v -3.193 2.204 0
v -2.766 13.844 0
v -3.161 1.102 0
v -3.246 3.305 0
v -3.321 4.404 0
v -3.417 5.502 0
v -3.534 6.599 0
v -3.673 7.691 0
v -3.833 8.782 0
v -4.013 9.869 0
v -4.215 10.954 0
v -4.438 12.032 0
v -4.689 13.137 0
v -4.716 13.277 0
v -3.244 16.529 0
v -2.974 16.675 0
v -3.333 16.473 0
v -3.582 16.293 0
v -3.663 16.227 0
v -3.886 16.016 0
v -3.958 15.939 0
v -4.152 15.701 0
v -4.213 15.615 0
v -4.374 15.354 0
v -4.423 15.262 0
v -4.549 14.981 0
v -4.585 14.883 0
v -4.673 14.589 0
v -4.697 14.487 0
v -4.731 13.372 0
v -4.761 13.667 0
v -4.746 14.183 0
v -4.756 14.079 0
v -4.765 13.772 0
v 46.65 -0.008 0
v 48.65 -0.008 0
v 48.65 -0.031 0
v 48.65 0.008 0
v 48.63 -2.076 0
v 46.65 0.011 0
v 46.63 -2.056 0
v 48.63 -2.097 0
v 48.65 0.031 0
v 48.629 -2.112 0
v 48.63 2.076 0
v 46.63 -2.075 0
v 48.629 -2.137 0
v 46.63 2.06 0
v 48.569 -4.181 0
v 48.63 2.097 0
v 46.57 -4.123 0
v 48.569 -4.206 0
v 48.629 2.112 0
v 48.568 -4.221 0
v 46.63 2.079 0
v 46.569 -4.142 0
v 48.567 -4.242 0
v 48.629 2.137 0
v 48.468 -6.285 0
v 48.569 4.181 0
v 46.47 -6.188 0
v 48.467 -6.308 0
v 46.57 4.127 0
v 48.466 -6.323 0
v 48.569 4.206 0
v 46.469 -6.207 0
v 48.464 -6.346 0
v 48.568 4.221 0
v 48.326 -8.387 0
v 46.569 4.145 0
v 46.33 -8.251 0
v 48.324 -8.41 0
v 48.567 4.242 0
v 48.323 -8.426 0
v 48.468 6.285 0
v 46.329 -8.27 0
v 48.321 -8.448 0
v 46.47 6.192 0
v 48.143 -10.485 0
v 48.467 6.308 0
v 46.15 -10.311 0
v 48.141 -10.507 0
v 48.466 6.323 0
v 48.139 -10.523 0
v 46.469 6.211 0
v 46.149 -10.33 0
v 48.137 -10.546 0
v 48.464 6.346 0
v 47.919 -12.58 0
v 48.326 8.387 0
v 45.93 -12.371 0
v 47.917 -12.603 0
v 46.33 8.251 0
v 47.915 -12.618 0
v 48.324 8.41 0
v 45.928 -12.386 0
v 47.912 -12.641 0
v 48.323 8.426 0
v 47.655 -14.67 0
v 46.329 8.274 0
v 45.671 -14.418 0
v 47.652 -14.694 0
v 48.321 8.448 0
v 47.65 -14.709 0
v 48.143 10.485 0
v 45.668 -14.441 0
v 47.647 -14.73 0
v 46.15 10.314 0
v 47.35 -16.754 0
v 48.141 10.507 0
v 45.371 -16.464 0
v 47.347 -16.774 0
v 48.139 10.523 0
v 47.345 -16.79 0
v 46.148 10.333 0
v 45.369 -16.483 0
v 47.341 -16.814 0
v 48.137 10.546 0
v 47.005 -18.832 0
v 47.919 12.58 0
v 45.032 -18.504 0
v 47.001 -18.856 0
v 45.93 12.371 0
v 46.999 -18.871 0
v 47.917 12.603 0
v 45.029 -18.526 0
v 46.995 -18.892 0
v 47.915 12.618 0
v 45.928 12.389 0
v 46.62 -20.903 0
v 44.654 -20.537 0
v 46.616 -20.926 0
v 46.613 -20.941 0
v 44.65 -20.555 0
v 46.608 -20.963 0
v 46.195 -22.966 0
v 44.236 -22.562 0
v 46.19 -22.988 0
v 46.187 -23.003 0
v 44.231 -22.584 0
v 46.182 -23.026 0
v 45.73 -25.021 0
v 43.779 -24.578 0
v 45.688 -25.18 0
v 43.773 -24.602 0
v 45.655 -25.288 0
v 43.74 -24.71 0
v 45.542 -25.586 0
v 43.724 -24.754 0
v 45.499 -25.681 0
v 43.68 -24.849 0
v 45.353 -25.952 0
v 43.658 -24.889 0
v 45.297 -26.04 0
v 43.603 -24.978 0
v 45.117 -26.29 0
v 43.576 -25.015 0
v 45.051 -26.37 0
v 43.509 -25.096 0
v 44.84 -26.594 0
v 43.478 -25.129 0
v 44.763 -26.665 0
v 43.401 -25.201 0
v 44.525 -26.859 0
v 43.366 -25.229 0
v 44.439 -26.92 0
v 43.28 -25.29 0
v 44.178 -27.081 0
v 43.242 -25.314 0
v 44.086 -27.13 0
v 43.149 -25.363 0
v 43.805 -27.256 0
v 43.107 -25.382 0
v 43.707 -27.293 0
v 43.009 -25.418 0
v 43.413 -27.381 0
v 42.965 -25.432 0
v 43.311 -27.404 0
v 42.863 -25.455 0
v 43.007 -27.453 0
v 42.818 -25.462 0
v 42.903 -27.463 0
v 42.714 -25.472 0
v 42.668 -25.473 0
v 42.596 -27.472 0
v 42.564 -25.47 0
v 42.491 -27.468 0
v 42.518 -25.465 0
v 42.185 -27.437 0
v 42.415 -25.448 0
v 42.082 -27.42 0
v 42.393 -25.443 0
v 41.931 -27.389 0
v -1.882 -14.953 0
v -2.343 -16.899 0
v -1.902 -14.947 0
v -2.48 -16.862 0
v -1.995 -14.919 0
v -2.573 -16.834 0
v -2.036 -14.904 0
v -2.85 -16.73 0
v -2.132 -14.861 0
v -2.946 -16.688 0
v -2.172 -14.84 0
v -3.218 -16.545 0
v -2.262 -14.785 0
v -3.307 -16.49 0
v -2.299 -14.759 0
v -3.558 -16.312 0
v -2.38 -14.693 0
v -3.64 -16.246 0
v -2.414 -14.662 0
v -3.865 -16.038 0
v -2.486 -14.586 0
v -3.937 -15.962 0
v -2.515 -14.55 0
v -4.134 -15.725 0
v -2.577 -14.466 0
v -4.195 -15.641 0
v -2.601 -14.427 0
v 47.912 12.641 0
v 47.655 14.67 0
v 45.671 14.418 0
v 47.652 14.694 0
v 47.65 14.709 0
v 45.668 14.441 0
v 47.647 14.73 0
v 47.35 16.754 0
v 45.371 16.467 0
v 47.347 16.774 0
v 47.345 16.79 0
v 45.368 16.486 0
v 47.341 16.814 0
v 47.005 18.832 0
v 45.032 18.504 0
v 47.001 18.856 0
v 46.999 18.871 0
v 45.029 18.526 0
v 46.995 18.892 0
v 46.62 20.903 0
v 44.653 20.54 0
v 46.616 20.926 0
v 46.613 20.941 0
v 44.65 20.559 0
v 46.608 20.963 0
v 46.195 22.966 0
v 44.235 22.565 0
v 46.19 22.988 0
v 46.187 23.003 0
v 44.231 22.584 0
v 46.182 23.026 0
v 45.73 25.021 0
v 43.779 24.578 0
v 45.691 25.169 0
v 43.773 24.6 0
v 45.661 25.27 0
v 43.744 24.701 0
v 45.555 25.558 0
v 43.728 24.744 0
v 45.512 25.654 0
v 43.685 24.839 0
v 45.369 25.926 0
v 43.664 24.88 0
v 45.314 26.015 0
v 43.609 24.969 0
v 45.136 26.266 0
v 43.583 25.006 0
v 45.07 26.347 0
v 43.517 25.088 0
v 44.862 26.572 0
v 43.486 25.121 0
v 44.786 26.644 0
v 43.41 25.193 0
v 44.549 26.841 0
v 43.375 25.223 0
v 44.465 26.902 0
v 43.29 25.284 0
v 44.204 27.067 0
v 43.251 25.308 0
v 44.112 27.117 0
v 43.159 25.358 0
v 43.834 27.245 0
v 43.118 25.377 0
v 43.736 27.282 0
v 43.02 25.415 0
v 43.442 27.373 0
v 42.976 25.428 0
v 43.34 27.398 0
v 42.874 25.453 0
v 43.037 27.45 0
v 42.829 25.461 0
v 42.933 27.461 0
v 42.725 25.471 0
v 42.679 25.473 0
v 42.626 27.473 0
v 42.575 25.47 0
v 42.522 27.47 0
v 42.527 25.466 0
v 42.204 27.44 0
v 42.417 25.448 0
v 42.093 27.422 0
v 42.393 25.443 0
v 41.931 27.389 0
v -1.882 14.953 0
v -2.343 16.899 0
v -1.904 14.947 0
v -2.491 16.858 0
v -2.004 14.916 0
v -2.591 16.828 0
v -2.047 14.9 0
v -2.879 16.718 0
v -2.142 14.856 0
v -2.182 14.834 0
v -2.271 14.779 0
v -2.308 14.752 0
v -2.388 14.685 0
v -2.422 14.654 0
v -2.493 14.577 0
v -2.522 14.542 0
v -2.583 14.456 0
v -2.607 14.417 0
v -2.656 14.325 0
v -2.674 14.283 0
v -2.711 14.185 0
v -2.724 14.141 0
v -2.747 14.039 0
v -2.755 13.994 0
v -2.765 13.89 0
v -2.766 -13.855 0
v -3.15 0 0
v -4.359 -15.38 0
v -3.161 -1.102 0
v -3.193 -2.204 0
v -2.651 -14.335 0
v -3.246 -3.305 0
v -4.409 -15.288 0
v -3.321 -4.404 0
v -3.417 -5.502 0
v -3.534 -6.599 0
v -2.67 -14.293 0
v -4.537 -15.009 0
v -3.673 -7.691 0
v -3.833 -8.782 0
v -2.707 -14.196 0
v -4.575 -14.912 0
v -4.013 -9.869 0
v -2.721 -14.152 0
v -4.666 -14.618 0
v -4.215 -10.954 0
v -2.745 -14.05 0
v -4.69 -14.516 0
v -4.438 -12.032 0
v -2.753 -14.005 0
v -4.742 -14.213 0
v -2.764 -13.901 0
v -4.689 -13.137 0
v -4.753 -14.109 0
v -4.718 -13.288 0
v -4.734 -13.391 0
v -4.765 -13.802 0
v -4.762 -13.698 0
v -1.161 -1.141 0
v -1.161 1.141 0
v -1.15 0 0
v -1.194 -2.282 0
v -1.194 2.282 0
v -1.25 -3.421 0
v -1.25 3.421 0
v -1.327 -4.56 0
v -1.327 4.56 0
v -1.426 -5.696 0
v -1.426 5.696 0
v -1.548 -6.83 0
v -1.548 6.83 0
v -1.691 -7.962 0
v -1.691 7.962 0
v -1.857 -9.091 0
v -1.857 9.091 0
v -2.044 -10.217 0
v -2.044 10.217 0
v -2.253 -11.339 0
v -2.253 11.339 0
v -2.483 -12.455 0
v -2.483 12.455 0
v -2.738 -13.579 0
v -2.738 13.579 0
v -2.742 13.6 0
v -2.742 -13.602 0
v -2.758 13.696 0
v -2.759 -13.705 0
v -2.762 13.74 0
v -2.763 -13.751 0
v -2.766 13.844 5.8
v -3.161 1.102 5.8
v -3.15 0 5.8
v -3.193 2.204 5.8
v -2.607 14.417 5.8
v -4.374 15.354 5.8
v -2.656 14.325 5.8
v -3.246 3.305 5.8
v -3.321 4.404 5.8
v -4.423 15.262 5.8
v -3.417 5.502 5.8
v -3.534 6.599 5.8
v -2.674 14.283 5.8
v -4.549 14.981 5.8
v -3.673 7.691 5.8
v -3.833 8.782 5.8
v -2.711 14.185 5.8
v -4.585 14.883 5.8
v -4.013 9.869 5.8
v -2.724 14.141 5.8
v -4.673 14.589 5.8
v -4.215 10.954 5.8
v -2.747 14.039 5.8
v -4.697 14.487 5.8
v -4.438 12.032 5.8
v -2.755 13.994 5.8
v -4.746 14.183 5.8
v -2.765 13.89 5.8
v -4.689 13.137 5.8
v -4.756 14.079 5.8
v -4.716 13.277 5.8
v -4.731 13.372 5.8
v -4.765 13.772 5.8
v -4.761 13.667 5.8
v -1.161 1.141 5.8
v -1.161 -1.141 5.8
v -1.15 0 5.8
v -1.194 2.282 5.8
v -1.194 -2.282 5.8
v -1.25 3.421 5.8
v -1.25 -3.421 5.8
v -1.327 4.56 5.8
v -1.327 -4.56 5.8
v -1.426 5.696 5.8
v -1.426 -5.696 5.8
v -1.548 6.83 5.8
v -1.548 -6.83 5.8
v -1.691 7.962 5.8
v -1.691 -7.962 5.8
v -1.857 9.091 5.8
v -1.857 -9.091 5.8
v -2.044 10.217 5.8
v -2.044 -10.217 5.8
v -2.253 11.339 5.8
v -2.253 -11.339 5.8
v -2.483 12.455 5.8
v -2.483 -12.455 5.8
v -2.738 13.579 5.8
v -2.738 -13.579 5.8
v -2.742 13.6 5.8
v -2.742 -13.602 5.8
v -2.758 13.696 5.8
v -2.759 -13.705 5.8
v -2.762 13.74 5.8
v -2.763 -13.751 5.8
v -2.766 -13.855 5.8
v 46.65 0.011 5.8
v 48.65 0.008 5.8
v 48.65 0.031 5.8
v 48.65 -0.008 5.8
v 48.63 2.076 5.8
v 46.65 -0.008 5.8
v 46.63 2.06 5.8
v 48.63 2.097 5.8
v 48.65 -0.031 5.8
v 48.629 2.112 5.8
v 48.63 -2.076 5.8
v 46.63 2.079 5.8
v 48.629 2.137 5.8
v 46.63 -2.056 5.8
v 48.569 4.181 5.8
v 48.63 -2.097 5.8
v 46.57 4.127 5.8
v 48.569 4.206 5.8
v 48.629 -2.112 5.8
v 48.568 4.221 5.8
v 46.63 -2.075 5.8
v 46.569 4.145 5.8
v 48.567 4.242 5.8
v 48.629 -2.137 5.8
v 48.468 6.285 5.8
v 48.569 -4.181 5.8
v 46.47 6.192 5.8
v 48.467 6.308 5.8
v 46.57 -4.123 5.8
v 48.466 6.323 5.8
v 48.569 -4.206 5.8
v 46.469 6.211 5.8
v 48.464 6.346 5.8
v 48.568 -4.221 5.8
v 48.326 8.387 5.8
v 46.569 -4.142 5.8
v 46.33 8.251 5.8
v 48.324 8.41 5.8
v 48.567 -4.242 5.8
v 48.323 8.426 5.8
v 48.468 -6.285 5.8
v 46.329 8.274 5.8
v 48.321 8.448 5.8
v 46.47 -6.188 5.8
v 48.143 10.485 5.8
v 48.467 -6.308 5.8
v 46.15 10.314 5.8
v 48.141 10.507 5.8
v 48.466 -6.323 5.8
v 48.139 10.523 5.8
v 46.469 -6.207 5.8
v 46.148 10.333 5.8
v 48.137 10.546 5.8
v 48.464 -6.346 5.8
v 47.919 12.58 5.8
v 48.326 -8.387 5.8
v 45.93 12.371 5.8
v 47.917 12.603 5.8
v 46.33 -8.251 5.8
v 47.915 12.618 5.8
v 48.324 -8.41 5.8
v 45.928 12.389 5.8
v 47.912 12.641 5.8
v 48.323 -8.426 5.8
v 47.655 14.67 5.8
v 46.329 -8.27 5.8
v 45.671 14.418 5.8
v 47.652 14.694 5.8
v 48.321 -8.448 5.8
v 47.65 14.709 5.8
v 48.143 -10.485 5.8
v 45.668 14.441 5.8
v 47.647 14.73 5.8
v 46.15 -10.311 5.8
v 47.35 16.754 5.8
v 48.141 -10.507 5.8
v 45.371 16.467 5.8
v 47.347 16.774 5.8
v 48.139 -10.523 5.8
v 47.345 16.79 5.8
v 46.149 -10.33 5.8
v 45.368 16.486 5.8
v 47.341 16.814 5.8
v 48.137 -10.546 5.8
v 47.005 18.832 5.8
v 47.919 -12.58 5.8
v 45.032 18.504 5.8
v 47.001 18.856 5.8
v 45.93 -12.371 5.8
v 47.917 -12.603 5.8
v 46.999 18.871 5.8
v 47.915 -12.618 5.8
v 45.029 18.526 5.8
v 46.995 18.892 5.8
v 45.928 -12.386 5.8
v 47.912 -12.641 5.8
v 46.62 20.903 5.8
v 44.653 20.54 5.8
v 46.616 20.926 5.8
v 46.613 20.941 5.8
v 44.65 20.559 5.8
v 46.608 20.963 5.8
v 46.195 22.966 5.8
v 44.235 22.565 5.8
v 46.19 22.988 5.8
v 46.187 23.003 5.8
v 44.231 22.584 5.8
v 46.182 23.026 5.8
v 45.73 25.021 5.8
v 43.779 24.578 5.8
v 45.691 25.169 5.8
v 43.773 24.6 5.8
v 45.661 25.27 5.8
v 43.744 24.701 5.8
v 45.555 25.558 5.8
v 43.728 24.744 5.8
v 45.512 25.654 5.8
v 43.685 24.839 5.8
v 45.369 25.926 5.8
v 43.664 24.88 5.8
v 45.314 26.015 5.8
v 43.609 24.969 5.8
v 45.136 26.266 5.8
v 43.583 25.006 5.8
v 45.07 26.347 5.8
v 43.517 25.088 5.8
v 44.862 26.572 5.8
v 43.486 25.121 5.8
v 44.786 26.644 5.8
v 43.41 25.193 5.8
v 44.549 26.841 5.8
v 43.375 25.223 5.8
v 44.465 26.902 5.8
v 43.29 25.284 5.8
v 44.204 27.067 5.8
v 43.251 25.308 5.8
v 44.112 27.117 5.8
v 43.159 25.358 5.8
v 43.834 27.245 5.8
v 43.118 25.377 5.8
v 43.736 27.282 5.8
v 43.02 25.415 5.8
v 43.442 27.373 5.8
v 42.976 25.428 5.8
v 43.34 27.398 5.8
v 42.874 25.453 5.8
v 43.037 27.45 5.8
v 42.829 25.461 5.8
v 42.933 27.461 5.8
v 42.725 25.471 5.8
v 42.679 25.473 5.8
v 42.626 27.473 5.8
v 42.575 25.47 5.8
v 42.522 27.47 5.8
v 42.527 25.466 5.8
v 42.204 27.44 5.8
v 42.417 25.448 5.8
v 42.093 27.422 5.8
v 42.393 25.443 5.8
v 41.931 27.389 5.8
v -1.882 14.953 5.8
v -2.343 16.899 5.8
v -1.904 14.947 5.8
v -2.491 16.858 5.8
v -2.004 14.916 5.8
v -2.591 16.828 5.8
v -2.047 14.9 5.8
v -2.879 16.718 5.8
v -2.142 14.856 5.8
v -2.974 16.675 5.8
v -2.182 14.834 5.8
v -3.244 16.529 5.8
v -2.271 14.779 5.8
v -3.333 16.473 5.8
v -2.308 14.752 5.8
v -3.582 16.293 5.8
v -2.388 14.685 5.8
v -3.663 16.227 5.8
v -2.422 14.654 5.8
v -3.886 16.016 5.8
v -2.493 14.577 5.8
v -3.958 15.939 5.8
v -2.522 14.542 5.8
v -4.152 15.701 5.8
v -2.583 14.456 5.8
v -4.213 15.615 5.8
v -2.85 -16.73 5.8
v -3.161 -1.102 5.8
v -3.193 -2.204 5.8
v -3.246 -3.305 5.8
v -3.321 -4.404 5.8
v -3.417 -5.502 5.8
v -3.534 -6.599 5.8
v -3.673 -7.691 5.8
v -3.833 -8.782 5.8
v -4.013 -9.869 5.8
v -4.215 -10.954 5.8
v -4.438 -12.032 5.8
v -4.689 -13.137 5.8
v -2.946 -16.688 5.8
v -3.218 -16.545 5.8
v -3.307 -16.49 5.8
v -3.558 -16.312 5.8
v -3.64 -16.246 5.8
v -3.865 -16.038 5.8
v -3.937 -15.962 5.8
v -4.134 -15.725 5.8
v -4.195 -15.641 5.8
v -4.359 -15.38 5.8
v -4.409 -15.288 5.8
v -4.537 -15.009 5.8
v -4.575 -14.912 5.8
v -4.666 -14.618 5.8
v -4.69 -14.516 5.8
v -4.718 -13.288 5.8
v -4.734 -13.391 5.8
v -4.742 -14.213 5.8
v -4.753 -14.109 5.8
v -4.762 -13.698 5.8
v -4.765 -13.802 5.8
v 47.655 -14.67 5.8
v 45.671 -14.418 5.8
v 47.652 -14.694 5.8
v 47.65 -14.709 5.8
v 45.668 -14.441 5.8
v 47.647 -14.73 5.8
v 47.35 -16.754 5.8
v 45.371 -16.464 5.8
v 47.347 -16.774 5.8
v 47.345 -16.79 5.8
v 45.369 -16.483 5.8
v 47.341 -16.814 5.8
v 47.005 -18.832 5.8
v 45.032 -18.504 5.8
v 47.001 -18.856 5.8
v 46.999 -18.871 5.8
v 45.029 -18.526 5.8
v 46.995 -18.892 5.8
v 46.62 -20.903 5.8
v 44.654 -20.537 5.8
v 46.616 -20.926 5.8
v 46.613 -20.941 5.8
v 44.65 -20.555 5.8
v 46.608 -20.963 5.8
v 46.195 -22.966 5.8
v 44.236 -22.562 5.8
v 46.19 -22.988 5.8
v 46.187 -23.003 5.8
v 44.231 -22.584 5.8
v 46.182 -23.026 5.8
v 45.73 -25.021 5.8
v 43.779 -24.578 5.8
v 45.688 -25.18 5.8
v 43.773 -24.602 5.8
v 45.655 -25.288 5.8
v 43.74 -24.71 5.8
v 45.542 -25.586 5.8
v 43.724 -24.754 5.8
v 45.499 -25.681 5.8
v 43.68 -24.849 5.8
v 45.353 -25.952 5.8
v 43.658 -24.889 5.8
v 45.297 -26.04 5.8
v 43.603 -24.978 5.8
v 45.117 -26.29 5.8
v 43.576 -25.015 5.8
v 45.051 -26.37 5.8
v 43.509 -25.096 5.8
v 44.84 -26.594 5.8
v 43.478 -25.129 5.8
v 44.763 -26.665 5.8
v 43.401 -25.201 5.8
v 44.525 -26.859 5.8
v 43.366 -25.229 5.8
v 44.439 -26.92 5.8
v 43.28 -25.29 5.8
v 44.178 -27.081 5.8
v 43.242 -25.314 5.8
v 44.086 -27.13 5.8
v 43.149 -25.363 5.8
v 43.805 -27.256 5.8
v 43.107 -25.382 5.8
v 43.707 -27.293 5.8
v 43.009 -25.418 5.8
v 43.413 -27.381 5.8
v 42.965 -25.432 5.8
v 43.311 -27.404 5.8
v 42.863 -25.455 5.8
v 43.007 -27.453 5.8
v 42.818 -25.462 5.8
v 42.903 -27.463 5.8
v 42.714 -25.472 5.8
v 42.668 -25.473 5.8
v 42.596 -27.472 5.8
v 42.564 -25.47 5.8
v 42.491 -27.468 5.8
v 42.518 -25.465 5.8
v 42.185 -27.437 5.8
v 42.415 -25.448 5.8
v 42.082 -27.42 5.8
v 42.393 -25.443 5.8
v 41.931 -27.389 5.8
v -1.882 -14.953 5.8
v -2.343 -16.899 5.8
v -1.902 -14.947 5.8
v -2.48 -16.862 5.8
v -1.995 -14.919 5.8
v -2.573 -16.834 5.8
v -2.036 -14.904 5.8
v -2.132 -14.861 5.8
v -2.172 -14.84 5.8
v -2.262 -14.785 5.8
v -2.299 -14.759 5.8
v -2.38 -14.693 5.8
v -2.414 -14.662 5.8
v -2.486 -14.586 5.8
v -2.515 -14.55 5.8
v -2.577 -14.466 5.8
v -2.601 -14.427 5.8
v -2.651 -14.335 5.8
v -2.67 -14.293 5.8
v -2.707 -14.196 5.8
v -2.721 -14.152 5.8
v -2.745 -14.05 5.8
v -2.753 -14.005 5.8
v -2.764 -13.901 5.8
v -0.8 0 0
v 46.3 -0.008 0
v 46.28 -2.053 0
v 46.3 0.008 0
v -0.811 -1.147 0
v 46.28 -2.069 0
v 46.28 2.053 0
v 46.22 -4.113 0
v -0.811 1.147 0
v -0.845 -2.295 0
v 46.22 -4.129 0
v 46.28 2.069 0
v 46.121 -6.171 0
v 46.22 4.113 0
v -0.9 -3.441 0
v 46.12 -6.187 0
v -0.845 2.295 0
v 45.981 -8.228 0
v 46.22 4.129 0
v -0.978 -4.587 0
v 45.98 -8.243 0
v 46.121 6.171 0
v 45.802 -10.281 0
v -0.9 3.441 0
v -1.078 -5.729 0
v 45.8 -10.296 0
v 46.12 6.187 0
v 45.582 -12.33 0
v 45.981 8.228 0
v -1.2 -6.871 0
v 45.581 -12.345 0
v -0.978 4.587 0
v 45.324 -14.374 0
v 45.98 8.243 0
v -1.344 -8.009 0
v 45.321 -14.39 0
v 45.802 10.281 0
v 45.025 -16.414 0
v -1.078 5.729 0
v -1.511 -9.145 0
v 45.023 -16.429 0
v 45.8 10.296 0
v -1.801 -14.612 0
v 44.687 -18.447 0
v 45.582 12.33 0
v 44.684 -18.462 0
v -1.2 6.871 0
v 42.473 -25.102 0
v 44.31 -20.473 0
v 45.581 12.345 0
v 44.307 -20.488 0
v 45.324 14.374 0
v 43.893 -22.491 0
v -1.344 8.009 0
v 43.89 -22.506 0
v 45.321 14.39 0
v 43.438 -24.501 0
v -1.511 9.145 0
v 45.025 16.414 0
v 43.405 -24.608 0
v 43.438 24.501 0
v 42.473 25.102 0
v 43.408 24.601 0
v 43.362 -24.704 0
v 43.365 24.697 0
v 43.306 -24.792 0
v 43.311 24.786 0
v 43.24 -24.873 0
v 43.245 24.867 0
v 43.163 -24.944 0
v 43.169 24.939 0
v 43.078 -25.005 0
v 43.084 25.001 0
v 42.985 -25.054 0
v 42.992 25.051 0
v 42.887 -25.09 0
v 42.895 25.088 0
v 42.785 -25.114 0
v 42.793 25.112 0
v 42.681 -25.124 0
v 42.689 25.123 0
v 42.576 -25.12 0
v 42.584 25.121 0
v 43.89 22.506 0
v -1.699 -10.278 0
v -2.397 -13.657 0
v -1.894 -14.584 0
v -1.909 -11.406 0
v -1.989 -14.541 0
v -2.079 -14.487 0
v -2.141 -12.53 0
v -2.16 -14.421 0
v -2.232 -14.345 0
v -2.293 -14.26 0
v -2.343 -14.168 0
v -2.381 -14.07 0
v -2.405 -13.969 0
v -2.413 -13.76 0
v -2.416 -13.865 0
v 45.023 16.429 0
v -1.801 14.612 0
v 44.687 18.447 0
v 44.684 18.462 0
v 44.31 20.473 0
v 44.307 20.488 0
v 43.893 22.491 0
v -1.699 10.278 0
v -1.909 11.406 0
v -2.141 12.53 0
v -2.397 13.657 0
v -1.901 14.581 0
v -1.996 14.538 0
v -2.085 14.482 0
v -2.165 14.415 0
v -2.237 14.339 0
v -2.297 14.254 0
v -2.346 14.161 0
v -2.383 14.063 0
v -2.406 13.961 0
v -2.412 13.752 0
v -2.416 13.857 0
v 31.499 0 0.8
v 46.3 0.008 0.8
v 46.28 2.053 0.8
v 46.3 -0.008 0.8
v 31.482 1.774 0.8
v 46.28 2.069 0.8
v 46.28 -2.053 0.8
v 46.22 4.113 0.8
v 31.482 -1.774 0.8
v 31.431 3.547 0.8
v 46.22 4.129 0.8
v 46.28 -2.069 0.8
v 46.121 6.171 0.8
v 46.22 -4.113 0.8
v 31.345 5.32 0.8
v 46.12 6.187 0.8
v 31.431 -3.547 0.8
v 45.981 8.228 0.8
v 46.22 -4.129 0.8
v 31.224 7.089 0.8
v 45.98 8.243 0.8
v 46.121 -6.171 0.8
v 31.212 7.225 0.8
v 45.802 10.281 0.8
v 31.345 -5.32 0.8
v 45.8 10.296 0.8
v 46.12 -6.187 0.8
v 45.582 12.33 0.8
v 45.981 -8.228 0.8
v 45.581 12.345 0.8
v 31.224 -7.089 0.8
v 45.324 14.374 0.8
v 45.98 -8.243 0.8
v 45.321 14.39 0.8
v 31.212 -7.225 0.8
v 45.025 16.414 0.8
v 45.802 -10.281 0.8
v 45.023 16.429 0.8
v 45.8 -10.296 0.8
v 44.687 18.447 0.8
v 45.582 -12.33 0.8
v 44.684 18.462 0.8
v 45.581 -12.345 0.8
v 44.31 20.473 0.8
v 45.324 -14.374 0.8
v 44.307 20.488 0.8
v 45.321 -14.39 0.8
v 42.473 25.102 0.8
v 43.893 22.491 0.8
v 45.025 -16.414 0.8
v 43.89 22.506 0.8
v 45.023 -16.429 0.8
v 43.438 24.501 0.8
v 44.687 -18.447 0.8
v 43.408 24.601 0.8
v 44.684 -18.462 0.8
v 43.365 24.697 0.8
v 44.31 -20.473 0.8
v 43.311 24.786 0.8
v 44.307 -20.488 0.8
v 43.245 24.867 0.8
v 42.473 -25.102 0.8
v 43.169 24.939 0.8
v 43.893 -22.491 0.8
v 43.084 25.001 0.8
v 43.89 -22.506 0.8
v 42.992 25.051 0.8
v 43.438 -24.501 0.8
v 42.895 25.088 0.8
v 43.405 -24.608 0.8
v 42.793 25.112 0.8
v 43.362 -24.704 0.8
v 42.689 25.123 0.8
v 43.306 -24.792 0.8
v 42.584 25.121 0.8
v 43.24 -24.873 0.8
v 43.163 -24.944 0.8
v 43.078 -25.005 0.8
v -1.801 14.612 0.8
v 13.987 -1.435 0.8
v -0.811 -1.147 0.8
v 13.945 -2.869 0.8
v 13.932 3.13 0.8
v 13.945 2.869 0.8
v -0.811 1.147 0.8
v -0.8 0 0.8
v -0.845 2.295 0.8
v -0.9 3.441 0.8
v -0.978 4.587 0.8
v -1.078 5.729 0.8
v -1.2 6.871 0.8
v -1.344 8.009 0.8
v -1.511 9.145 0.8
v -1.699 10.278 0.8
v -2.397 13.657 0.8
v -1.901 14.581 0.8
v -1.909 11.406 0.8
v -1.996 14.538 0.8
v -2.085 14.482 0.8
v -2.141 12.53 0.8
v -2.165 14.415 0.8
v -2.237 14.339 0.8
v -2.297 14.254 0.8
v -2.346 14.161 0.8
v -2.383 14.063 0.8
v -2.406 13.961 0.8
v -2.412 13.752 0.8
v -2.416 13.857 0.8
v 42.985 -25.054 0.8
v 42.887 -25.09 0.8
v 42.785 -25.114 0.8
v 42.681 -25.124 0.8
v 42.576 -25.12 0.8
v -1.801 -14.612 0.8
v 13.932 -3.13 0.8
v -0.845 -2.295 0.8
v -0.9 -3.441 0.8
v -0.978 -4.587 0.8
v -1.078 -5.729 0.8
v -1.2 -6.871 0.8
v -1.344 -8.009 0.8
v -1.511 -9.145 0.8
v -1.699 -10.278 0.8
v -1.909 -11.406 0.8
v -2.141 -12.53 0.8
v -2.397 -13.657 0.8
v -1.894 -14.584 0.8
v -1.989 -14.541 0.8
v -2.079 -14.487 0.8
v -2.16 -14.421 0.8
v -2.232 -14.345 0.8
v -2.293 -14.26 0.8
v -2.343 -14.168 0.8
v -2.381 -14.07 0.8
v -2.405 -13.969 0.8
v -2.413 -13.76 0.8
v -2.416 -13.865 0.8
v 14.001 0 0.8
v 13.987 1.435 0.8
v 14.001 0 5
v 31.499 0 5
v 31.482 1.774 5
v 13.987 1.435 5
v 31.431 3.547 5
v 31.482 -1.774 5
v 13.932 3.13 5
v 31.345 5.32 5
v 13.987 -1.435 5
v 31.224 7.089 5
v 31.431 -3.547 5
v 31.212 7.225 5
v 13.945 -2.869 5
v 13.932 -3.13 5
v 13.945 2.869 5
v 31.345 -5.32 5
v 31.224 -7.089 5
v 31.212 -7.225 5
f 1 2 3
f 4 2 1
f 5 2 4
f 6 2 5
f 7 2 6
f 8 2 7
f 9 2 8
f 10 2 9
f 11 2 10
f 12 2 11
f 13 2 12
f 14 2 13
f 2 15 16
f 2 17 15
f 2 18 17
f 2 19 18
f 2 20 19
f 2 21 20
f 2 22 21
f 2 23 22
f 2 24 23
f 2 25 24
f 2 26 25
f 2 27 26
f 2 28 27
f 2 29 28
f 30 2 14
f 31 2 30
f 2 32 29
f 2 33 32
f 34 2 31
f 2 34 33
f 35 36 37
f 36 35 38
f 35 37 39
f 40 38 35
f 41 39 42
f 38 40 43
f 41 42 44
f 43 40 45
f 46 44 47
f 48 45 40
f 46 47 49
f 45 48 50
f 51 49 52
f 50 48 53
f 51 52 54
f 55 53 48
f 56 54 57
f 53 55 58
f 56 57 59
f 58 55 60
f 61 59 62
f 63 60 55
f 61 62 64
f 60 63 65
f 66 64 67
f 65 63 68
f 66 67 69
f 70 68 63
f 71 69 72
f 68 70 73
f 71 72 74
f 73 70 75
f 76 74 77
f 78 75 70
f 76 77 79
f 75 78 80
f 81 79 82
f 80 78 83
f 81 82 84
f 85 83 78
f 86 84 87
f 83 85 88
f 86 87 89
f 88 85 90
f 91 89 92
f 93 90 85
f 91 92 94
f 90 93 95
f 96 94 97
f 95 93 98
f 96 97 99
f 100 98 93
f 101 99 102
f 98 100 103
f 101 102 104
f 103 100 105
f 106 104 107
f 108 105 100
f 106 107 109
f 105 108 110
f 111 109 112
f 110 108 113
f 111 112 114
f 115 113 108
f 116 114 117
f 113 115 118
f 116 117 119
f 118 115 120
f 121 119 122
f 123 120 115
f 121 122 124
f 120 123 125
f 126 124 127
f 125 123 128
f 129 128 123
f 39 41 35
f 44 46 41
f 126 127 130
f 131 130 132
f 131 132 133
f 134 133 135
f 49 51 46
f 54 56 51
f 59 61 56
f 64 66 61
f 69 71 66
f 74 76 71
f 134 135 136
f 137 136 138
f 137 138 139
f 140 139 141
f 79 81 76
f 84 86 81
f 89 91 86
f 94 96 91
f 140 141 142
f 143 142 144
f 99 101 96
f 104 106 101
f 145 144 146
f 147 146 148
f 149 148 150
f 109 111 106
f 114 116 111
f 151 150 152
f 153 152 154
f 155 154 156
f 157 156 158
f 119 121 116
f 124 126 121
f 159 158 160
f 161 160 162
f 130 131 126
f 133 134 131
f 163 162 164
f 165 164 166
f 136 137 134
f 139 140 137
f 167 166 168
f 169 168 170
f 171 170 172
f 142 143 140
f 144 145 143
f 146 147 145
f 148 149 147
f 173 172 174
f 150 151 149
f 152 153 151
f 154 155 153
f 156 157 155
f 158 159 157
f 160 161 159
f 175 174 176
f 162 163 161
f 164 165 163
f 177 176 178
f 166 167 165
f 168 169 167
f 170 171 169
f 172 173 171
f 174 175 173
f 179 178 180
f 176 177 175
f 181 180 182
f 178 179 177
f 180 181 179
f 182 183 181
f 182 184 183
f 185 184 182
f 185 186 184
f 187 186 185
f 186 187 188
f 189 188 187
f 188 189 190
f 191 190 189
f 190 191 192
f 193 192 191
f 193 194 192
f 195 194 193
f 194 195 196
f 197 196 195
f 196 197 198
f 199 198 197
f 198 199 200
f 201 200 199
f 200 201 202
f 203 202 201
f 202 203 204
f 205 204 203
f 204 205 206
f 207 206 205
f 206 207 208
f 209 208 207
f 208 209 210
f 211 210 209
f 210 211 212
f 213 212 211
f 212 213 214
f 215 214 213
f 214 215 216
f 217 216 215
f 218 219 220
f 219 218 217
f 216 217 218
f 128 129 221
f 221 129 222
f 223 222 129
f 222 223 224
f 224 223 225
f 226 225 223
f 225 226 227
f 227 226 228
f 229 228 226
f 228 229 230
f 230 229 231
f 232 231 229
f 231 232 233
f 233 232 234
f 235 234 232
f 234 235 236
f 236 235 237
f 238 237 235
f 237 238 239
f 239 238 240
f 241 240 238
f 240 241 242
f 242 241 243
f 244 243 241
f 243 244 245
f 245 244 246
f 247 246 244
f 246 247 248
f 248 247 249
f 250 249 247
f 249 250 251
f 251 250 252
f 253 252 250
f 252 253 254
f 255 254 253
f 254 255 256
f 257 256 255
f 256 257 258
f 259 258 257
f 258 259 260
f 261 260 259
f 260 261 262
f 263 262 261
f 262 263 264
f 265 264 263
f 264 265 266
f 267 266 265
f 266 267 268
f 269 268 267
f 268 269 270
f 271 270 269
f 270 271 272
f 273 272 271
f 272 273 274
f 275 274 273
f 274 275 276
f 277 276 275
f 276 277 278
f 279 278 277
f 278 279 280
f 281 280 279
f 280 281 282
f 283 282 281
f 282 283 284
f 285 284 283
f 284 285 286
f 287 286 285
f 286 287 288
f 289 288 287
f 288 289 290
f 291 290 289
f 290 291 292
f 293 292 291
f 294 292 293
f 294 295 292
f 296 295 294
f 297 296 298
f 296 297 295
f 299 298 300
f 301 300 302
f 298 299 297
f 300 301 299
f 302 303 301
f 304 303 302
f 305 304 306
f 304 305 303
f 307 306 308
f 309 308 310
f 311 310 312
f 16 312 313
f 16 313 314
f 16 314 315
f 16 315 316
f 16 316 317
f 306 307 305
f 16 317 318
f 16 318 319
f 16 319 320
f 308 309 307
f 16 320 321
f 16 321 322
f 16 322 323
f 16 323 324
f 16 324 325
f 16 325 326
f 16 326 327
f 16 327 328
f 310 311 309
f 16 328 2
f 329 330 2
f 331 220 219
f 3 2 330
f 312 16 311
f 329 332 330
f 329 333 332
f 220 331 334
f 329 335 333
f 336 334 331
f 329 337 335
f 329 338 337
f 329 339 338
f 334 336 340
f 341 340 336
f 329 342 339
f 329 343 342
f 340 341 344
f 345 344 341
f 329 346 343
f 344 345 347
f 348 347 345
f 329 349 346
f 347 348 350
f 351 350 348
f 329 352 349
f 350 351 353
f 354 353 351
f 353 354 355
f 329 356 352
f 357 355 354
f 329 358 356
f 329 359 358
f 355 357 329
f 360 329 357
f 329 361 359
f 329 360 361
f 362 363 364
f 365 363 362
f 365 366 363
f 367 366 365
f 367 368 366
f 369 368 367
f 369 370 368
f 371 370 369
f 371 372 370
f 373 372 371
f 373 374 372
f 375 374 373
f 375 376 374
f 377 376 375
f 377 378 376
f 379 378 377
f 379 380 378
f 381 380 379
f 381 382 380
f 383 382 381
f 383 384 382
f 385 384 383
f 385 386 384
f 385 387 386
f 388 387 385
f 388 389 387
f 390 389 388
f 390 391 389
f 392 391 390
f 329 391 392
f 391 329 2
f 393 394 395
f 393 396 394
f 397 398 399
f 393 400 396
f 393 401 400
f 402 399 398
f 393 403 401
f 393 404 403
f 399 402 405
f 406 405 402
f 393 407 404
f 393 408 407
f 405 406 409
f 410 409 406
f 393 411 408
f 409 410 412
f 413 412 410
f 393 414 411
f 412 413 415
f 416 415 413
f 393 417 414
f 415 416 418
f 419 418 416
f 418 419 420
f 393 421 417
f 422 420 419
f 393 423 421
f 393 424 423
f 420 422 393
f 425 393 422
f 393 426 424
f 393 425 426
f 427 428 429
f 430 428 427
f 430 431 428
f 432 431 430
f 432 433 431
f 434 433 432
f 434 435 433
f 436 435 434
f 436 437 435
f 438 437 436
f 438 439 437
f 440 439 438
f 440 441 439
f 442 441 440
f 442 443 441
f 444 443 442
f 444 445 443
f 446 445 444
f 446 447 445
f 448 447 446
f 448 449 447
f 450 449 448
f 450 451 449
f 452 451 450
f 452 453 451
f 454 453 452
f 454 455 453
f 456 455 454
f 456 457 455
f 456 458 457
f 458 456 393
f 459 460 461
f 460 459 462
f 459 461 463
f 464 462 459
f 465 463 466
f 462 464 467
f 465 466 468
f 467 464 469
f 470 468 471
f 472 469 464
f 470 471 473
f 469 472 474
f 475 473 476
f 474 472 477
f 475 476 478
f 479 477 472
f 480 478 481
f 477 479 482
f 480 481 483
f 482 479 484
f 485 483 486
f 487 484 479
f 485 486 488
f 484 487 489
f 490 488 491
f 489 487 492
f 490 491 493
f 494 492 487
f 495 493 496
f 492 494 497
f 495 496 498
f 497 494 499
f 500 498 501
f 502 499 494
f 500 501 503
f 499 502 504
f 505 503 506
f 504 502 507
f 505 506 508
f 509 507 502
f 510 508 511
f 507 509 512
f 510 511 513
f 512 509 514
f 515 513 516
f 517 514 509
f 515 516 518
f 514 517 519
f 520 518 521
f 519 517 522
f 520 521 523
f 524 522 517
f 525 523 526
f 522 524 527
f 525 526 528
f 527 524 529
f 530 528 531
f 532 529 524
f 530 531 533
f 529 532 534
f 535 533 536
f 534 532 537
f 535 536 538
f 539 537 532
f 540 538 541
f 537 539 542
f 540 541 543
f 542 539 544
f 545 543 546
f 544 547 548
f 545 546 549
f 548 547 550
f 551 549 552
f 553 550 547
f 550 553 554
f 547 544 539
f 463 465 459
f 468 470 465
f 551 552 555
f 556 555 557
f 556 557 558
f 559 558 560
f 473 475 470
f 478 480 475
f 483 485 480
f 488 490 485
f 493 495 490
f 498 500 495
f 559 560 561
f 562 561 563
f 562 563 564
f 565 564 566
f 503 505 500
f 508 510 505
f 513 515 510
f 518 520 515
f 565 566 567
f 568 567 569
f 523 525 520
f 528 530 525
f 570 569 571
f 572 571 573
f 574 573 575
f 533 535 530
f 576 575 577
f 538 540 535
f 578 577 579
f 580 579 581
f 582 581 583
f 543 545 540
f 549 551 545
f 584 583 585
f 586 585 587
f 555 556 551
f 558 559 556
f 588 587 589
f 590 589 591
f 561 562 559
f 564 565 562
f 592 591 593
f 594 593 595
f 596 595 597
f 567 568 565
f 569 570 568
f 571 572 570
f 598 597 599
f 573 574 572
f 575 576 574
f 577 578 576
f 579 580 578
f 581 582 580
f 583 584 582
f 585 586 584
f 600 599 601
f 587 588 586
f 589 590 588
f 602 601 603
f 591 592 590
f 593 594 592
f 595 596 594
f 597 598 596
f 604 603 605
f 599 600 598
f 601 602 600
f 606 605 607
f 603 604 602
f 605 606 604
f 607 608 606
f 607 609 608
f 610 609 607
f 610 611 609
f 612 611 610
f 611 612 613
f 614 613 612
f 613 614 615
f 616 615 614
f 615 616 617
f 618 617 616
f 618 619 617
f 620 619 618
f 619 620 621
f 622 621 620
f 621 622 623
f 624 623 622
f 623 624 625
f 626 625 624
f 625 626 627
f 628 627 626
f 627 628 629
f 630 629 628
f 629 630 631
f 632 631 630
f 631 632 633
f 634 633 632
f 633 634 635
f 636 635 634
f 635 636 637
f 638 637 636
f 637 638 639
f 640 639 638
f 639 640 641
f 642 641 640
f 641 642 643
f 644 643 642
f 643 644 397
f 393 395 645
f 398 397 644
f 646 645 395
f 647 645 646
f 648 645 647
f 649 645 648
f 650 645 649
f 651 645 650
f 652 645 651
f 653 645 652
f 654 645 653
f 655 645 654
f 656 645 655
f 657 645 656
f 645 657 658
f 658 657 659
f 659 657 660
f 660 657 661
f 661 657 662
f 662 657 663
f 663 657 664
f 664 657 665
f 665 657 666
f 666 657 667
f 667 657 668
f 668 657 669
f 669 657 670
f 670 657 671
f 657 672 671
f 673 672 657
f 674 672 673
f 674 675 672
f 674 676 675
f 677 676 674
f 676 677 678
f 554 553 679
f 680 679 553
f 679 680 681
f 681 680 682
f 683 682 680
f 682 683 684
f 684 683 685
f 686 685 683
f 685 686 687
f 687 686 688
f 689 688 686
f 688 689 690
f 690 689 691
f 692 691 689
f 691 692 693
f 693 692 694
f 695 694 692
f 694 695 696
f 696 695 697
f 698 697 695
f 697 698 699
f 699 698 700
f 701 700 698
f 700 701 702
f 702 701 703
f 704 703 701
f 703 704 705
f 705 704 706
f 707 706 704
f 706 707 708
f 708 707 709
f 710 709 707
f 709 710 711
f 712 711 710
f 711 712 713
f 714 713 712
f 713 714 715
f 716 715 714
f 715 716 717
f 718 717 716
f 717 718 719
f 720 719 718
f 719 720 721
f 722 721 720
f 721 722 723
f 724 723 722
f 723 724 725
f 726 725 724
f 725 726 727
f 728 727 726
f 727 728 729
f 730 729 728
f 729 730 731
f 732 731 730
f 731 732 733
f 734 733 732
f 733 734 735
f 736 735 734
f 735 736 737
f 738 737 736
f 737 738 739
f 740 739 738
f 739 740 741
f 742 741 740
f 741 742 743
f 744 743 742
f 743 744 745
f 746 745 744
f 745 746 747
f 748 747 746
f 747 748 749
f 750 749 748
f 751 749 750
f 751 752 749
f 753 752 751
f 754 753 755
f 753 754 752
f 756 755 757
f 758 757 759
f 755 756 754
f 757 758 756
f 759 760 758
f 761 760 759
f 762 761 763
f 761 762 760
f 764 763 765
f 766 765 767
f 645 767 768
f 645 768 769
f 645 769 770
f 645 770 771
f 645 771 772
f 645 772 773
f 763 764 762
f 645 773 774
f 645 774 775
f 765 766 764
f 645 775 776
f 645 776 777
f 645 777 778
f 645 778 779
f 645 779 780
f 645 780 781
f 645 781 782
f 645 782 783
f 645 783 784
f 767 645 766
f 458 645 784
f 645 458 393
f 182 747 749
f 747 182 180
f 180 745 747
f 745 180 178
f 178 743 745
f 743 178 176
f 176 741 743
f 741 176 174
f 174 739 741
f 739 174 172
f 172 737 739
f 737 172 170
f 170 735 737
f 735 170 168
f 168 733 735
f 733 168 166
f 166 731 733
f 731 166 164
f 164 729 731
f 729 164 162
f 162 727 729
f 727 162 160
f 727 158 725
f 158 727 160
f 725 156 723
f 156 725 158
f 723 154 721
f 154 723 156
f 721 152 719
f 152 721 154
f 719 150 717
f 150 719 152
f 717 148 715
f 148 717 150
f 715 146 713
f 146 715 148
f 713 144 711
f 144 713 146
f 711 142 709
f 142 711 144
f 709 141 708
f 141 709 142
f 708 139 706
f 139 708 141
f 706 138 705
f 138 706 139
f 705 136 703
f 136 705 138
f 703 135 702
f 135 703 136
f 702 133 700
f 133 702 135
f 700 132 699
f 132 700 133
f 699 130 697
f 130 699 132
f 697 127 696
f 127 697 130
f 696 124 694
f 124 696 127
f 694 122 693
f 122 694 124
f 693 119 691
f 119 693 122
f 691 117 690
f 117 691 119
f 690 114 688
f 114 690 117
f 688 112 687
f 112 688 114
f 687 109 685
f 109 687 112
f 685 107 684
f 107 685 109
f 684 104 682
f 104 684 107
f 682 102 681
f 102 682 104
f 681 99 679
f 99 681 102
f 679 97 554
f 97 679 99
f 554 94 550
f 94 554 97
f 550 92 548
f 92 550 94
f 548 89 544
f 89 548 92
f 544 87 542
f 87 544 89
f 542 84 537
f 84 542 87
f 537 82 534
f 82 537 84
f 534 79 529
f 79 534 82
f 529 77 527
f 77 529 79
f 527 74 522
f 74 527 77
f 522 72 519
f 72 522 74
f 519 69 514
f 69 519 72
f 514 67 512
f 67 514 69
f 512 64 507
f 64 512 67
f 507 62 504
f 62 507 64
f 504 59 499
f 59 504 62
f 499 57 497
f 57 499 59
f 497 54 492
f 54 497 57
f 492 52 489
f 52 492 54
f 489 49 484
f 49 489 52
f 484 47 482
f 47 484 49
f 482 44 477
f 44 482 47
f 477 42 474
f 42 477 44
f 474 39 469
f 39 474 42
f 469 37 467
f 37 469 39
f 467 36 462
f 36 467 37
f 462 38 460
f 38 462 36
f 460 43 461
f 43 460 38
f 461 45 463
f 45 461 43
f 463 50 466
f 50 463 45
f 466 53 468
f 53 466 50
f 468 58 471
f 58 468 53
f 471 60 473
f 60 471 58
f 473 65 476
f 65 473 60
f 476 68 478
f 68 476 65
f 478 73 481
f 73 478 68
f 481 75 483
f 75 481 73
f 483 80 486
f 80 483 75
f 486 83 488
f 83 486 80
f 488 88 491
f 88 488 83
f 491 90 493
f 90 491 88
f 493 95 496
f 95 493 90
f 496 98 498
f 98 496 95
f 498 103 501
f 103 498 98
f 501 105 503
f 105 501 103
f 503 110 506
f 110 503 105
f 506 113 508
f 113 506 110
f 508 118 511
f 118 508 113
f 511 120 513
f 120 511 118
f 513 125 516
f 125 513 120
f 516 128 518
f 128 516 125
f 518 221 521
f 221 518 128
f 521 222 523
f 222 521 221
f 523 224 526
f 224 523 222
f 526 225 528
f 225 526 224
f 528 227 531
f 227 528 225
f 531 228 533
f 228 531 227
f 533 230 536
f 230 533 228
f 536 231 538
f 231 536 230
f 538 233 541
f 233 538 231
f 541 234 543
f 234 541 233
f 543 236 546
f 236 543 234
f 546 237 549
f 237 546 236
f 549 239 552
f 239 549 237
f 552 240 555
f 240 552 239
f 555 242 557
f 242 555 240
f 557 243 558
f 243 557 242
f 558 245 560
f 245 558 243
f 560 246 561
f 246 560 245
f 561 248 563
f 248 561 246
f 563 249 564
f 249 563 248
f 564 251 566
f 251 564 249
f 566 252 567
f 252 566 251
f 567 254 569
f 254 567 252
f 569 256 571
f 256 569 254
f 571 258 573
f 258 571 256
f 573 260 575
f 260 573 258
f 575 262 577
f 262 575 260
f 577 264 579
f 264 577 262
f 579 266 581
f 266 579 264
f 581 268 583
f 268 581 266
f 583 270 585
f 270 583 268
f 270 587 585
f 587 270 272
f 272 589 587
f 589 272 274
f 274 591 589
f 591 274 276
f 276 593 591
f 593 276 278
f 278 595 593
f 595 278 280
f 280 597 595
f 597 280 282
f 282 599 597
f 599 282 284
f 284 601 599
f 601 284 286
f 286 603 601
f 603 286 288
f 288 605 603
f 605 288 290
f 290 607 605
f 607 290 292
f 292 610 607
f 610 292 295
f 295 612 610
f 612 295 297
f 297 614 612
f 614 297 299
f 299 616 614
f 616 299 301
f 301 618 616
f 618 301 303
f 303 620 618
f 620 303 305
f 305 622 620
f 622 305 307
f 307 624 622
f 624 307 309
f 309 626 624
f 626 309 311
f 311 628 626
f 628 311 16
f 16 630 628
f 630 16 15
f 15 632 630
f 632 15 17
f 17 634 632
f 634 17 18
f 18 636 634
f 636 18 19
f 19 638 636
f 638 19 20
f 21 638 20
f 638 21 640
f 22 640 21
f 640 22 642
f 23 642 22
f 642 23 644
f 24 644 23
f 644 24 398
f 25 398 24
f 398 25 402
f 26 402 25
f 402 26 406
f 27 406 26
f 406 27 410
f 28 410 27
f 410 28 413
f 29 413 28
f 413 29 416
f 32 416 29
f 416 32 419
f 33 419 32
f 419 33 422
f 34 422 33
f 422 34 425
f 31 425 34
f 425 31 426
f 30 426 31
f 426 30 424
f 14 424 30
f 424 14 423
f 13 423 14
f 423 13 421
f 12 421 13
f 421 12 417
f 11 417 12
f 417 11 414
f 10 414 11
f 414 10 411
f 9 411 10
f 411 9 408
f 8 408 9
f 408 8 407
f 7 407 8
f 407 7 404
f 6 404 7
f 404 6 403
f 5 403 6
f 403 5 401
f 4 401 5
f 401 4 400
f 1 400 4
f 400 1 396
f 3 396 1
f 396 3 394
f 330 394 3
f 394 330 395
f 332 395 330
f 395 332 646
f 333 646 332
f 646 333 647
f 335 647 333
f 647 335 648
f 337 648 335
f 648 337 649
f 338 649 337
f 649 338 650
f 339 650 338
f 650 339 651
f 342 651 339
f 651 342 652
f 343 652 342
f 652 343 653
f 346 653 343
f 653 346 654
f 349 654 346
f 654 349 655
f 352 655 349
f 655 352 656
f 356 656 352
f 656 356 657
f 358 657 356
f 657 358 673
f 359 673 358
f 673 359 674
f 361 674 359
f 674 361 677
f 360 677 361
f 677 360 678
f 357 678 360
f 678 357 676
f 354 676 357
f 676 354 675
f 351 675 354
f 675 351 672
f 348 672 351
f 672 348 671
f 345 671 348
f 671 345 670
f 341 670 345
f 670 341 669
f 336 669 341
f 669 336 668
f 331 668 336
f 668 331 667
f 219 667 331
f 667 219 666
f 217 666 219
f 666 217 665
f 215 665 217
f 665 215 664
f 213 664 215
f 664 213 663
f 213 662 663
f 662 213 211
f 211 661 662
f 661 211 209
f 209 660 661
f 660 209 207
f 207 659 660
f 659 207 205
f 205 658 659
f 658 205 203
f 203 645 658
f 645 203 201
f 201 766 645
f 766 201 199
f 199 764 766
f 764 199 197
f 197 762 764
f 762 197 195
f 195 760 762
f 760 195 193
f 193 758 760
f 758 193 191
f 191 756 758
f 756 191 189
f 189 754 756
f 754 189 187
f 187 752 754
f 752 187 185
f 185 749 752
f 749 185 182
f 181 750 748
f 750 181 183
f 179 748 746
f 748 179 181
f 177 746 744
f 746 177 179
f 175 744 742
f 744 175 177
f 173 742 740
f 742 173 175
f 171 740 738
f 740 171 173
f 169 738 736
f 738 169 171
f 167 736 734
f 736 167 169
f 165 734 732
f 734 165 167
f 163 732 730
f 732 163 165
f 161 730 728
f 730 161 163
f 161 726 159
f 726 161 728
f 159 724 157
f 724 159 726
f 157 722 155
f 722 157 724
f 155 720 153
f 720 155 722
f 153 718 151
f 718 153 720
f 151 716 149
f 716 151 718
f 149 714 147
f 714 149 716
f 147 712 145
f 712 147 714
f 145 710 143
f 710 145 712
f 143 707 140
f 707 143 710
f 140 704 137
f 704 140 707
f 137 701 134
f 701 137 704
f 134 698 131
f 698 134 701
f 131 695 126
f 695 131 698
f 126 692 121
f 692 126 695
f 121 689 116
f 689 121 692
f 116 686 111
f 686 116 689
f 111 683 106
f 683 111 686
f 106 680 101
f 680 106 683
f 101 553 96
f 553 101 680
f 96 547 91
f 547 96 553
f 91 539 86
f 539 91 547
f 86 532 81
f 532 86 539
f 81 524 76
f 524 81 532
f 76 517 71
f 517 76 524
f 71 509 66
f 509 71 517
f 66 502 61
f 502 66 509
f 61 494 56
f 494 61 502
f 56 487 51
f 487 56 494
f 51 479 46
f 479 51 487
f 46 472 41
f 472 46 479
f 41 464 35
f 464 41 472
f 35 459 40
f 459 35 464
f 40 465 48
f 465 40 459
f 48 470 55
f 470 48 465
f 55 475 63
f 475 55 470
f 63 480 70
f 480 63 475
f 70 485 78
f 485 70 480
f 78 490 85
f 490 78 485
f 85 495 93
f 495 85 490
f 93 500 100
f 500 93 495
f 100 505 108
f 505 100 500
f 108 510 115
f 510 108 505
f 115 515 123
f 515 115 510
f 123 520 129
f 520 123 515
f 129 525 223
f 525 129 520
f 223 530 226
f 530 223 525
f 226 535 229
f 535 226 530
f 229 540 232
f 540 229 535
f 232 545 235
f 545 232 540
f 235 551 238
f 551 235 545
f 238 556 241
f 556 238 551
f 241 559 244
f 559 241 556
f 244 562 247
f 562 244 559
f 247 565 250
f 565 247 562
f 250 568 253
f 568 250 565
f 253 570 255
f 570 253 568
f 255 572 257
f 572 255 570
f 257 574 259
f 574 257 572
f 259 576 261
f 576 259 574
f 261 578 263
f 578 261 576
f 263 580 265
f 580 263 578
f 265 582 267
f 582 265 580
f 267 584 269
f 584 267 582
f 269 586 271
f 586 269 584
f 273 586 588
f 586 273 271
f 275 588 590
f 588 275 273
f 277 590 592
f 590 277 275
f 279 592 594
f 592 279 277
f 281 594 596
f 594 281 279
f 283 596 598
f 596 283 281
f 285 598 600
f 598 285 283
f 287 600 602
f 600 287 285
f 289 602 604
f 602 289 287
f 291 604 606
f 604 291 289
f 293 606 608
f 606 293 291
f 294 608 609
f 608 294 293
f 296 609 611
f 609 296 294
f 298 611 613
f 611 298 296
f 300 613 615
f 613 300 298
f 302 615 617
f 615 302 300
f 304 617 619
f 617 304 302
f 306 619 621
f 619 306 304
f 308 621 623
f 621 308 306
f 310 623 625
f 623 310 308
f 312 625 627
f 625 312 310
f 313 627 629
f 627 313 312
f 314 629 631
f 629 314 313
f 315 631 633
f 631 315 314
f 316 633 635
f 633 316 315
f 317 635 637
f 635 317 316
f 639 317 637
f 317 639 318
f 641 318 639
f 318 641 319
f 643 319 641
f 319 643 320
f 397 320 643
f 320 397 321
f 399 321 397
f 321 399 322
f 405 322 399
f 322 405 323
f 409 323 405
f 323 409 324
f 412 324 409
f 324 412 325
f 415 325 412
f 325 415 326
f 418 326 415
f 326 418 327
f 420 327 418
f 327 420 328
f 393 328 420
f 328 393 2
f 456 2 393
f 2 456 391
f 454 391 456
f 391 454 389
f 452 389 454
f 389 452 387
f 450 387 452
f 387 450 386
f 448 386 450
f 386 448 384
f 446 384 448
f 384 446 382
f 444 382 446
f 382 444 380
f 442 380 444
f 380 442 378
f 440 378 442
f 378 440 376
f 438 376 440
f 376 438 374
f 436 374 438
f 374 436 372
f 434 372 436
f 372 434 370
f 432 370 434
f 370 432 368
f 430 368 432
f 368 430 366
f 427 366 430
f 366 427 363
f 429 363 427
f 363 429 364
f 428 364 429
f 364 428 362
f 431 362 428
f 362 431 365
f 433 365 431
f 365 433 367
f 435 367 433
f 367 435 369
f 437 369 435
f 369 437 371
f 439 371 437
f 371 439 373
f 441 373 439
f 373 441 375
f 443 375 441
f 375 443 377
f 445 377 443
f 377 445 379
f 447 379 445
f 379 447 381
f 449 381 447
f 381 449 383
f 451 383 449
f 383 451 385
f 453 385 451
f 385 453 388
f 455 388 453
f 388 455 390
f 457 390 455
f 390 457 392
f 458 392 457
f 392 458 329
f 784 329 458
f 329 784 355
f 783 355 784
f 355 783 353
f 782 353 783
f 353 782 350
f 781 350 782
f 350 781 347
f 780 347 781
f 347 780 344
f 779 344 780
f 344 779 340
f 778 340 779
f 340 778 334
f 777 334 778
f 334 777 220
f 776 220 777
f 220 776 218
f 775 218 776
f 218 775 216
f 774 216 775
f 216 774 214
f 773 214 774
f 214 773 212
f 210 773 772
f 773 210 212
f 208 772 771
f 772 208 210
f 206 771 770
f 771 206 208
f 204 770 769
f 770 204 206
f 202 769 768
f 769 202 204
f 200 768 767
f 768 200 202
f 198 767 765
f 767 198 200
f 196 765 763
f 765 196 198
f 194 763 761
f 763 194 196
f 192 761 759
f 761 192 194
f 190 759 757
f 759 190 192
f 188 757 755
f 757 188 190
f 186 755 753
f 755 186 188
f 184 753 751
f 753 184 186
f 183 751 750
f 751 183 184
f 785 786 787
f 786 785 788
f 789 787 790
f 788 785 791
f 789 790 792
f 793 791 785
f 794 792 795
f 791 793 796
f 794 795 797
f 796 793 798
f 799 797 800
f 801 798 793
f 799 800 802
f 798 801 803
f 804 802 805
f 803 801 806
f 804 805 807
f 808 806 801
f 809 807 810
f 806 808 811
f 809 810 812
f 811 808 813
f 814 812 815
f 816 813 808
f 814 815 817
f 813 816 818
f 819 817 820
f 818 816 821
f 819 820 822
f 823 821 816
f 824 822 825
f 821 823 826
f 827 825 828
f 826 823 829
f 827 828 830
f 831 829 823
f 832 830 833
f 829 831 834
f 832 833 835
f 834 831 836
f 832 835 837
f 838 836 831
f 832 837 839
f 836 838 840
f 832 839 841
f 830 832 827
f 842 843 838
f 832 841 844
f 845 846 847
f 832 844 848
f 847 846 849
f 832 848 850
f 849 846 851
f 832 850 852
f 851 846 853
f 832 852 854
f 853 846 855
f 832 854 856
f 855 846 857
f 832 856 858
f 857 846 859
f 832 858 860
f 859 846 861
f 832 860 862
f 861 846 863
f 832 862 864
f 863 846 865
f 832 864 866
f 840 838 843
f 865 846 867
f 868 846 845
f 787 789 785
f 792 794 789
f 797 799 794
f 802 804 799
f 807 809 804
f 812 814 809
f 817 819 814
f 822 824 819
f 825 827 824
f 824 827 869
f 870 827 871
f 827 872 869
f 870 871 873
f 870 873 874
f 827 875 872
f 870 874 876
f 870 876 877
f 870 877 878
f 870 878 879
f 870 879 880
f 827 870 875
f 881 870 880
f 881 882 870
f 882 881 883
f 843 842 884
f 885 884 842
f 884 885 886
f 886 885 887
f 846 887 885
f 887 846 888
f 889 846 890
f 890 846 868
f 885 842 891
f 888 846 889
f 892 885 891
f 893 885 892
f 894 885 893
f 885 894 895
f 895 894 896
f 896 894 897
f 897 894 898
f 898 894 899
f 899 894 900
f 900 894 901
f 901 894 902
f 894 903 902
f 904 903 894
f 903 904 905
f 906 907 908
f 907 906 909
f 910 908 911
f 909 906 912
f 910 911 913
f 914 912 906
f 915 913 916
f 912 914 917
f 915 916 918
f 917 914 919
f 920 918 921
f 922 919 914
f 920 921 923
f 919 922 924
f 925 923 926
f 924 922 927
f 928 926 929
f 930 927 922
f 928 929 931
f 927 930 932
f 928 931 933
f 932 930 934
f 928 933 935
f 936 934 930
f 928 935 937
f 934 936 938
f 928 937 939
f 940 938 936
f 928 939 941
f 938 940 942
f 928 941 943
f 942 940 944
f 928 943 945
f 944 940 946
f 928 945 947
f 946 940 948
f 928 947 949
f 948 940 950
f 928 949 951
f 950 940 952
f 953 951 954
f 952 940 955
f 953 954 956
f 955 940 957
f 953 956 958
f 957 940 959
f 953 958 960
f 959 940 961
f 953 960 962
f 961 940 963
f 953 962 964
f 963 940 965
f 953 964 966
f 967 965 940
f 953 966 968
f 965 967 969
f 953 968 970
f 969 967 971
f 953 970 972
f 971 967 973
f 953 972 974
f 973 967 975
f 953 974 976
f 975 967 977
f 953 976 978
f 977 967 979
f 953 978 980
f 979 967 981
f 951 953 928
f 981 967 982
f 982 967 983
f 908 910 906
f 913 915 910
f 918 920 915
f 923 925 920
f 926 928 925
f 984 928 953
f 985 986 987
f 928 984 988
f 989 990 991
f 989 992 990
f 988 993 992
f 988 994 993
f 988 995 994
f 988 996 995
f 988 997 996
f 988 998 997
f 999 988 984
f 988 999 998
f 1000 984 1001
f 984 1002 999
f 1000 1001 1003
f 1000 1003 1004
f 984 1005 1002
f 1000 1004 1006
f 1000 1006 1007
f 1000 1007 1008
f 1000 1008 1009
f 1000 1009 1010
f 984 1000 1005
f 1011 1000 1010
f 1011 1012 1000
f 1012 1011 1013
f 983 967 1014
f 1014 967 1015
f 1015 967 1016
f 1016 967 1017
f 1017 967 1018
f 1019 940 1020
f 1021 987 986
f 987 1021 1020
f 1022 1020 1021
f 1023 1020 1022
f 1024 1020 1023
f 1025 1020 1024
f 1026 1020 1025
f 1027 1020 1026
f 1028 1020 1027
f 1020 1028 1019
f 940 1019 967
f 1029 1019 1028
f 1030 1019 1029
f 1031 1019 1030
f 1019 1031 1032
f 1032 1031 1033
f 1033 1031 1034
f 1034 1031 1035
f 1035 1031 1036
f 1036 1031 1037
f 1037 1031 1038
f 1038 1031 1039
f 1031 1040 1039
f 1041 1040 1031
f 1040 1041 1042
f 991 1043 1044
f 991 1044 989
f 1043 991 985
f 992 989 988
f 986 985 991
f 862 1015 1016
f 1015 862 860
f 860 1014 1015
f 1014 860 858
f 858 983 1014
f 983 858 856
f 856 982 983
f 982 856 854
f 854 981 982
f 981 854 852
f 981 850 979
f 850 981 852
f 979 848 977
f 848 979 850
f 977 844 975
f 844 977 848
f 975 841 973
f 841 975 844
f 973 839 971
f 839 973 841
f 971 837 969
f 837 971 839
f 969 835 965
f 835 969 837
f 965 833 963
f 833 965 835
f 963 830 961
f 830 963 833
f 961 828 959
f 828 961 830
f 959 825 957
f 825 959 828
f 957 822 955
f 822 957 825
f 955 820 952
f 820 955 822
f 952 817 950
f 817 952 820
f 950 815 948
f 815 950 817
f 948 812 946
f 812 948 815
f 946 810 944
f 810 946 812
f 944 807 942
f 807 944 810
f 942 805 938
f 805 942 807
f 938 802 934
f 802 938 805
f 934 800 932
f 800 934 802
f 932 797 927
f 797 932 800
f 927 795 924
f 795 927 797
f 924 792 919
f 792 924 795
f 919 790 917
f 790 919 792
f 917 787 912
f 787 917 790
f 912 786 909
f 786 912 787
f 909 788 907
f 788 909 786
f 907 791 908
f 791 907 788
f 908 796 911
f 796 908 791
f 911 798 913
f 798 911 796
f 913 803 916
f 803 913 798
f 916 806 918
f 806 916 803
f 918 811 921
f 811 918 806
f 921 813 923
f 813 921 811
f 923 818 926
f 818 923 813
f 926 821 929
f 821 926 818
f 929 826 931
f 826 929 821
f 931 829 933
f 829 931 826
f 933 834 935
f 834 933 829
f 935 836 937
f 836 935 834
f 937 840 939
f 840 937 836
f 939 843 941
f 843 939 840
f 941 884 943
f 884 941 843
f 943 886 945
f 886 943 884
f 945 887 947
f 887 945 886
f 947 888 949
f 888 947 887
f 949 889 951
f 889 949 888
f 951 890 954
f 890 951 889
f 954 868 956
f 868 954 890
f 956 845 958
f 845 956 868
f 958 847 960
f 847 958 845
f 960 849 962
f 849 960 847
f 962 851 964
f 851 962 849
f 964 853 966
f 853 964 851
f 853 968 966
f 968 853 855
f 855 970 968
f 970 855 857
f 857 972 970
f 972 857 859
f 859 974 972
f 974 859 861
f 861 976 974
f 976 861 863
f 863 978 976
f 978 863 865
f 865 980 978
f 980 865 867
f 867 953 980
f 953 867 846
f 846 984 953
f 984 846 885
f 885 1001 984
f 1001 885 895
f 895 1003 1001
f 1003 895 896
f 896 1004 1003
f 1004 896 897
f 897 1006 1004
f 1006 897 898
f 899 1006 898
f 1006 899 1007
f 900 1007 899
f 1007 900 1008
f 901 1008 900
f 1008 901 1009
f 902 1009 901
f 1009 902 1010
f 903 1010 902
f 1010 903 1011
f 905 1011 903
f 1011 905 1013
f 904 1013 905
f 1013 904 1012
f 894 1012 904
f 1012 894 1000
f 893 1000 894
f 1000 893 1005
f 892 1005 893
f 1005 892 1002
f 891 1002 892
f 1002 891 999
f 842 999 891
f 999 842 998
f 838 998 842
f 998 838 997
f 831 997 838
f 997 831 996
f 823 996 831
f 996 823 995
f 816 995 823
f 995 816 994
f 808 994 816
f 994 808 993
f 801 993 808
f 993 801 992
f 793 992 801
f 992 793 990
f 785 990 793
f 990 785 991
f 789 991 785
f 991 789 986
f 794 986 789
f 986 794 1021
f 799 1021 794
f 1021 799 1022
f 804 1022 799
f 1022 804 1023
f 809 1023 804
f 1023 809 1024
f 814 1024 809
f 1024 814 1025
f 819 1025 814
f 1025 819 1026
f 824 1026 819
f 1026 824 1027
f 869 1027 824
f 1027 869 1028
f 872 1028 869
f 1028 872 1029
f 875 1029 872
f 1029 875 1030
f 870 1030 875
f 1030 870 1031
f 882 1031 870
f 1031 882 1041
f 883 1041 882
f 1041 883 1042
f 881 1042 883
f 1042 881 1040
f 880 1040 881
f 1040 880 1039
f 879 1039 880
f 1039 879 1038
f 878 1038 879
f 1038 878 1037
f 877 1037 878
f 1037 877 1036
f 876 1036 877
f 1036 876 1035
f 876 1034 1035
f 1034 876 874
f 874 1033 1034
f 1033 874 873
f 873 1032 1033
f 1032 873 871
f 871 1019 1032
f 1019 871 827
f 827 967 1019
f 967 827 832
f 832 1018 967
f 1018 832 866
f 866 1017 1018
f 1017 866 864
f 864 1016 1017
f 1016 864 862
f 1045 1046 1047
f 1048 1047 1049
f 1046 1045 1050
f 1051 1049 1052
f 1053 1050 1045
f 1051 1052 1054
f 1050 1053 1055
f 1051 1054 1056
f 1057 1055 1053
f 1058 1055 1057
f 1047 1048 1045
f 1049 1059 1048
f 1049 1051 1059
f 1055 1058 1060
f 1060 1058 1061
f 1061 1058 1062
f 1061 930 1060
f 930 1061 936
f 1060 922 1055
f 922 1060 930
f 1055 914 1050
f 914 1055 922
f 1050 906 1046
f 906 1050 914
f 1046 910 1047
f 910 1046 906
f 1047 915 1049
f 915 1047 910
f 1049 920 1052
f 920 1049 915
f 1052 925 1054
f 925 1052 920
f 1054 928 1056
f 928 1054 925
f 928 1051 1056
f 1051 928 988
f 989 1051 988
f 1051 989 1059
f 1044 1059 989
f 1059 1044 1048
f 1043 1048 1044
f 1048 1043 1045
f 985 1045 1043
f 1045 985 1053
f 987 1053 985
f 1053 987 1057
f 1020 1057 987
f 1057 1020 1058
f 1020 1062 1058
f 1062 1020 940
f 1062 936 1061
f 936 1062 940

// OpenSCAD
// Gen-CQ — fit coupon (bay part): O20/O5 THROUGH pockets at carrier thickness (test on a steel offcut), 608 seat,
// D-flat bore, gap shim, and one bobbin-bay slice (bobbin footprint + bay_clear) to test former fit.
include <parameters.scad>;
$fn = 48;
// D-flat keyed bore: flat faces +X (angle 0 = magnet pocket 0 = index notch)
module dflat_bore(h) {
    intersection() {
        cylinder(d=shaft_bore, h=h);
        translate([-shaft_bore, -shaft_bore, 0]) cube([shaft_bore + dflat_x, 2*shaft_bore, h]);
    }
}
module sector_2d(r_in, r_out, ang) {
    polygon([
        for (a = [-ang/2 : ang/24 : ang/2]) [r_in*cos(a), r_in*sin(a)],
        for (a = [ang/2 : -ang/24 : -ang/2]) [r_out*cos(a), r_out*sin(a)]
    ]);
}
module footprint_2d() { offset(r=wall) sector_2d(coil_id_r, coil_od_r, span_deg); }
module hub_2d()       { offset(delta=-coil_core_inset) sector_2d(coil_id_r, coil_od_r, span_deg); }

// bay slice at FULL stator thickness with one bobbin BASE printed IN PLACE inside it (bay_clear gap): this is the
// print-in-place test for the one-plate stator. After printing, the base must pop out with finger pressure; if it is fused,
// print coil_former.stl separately (print-packs/parts/) instead of using the in-place bases.
translate([-coil_id_r, 0, 0]) {
    difference() {
        linear_extrude(stator_thick) offset(r=bay_clear + 2) footprint_2d();
        translate([0, 0, -0.1]) linear_extrude(stator_thick + 0.2) offset(r=bay_clear) footprint_2d();
    }
    union() {
        linear_extrude(flange_t) footprint_2d();
        translate([0, 0, flange_t - 0.01]) linear_extrude(former_web + 0.01) hub_2d();
    }
}
